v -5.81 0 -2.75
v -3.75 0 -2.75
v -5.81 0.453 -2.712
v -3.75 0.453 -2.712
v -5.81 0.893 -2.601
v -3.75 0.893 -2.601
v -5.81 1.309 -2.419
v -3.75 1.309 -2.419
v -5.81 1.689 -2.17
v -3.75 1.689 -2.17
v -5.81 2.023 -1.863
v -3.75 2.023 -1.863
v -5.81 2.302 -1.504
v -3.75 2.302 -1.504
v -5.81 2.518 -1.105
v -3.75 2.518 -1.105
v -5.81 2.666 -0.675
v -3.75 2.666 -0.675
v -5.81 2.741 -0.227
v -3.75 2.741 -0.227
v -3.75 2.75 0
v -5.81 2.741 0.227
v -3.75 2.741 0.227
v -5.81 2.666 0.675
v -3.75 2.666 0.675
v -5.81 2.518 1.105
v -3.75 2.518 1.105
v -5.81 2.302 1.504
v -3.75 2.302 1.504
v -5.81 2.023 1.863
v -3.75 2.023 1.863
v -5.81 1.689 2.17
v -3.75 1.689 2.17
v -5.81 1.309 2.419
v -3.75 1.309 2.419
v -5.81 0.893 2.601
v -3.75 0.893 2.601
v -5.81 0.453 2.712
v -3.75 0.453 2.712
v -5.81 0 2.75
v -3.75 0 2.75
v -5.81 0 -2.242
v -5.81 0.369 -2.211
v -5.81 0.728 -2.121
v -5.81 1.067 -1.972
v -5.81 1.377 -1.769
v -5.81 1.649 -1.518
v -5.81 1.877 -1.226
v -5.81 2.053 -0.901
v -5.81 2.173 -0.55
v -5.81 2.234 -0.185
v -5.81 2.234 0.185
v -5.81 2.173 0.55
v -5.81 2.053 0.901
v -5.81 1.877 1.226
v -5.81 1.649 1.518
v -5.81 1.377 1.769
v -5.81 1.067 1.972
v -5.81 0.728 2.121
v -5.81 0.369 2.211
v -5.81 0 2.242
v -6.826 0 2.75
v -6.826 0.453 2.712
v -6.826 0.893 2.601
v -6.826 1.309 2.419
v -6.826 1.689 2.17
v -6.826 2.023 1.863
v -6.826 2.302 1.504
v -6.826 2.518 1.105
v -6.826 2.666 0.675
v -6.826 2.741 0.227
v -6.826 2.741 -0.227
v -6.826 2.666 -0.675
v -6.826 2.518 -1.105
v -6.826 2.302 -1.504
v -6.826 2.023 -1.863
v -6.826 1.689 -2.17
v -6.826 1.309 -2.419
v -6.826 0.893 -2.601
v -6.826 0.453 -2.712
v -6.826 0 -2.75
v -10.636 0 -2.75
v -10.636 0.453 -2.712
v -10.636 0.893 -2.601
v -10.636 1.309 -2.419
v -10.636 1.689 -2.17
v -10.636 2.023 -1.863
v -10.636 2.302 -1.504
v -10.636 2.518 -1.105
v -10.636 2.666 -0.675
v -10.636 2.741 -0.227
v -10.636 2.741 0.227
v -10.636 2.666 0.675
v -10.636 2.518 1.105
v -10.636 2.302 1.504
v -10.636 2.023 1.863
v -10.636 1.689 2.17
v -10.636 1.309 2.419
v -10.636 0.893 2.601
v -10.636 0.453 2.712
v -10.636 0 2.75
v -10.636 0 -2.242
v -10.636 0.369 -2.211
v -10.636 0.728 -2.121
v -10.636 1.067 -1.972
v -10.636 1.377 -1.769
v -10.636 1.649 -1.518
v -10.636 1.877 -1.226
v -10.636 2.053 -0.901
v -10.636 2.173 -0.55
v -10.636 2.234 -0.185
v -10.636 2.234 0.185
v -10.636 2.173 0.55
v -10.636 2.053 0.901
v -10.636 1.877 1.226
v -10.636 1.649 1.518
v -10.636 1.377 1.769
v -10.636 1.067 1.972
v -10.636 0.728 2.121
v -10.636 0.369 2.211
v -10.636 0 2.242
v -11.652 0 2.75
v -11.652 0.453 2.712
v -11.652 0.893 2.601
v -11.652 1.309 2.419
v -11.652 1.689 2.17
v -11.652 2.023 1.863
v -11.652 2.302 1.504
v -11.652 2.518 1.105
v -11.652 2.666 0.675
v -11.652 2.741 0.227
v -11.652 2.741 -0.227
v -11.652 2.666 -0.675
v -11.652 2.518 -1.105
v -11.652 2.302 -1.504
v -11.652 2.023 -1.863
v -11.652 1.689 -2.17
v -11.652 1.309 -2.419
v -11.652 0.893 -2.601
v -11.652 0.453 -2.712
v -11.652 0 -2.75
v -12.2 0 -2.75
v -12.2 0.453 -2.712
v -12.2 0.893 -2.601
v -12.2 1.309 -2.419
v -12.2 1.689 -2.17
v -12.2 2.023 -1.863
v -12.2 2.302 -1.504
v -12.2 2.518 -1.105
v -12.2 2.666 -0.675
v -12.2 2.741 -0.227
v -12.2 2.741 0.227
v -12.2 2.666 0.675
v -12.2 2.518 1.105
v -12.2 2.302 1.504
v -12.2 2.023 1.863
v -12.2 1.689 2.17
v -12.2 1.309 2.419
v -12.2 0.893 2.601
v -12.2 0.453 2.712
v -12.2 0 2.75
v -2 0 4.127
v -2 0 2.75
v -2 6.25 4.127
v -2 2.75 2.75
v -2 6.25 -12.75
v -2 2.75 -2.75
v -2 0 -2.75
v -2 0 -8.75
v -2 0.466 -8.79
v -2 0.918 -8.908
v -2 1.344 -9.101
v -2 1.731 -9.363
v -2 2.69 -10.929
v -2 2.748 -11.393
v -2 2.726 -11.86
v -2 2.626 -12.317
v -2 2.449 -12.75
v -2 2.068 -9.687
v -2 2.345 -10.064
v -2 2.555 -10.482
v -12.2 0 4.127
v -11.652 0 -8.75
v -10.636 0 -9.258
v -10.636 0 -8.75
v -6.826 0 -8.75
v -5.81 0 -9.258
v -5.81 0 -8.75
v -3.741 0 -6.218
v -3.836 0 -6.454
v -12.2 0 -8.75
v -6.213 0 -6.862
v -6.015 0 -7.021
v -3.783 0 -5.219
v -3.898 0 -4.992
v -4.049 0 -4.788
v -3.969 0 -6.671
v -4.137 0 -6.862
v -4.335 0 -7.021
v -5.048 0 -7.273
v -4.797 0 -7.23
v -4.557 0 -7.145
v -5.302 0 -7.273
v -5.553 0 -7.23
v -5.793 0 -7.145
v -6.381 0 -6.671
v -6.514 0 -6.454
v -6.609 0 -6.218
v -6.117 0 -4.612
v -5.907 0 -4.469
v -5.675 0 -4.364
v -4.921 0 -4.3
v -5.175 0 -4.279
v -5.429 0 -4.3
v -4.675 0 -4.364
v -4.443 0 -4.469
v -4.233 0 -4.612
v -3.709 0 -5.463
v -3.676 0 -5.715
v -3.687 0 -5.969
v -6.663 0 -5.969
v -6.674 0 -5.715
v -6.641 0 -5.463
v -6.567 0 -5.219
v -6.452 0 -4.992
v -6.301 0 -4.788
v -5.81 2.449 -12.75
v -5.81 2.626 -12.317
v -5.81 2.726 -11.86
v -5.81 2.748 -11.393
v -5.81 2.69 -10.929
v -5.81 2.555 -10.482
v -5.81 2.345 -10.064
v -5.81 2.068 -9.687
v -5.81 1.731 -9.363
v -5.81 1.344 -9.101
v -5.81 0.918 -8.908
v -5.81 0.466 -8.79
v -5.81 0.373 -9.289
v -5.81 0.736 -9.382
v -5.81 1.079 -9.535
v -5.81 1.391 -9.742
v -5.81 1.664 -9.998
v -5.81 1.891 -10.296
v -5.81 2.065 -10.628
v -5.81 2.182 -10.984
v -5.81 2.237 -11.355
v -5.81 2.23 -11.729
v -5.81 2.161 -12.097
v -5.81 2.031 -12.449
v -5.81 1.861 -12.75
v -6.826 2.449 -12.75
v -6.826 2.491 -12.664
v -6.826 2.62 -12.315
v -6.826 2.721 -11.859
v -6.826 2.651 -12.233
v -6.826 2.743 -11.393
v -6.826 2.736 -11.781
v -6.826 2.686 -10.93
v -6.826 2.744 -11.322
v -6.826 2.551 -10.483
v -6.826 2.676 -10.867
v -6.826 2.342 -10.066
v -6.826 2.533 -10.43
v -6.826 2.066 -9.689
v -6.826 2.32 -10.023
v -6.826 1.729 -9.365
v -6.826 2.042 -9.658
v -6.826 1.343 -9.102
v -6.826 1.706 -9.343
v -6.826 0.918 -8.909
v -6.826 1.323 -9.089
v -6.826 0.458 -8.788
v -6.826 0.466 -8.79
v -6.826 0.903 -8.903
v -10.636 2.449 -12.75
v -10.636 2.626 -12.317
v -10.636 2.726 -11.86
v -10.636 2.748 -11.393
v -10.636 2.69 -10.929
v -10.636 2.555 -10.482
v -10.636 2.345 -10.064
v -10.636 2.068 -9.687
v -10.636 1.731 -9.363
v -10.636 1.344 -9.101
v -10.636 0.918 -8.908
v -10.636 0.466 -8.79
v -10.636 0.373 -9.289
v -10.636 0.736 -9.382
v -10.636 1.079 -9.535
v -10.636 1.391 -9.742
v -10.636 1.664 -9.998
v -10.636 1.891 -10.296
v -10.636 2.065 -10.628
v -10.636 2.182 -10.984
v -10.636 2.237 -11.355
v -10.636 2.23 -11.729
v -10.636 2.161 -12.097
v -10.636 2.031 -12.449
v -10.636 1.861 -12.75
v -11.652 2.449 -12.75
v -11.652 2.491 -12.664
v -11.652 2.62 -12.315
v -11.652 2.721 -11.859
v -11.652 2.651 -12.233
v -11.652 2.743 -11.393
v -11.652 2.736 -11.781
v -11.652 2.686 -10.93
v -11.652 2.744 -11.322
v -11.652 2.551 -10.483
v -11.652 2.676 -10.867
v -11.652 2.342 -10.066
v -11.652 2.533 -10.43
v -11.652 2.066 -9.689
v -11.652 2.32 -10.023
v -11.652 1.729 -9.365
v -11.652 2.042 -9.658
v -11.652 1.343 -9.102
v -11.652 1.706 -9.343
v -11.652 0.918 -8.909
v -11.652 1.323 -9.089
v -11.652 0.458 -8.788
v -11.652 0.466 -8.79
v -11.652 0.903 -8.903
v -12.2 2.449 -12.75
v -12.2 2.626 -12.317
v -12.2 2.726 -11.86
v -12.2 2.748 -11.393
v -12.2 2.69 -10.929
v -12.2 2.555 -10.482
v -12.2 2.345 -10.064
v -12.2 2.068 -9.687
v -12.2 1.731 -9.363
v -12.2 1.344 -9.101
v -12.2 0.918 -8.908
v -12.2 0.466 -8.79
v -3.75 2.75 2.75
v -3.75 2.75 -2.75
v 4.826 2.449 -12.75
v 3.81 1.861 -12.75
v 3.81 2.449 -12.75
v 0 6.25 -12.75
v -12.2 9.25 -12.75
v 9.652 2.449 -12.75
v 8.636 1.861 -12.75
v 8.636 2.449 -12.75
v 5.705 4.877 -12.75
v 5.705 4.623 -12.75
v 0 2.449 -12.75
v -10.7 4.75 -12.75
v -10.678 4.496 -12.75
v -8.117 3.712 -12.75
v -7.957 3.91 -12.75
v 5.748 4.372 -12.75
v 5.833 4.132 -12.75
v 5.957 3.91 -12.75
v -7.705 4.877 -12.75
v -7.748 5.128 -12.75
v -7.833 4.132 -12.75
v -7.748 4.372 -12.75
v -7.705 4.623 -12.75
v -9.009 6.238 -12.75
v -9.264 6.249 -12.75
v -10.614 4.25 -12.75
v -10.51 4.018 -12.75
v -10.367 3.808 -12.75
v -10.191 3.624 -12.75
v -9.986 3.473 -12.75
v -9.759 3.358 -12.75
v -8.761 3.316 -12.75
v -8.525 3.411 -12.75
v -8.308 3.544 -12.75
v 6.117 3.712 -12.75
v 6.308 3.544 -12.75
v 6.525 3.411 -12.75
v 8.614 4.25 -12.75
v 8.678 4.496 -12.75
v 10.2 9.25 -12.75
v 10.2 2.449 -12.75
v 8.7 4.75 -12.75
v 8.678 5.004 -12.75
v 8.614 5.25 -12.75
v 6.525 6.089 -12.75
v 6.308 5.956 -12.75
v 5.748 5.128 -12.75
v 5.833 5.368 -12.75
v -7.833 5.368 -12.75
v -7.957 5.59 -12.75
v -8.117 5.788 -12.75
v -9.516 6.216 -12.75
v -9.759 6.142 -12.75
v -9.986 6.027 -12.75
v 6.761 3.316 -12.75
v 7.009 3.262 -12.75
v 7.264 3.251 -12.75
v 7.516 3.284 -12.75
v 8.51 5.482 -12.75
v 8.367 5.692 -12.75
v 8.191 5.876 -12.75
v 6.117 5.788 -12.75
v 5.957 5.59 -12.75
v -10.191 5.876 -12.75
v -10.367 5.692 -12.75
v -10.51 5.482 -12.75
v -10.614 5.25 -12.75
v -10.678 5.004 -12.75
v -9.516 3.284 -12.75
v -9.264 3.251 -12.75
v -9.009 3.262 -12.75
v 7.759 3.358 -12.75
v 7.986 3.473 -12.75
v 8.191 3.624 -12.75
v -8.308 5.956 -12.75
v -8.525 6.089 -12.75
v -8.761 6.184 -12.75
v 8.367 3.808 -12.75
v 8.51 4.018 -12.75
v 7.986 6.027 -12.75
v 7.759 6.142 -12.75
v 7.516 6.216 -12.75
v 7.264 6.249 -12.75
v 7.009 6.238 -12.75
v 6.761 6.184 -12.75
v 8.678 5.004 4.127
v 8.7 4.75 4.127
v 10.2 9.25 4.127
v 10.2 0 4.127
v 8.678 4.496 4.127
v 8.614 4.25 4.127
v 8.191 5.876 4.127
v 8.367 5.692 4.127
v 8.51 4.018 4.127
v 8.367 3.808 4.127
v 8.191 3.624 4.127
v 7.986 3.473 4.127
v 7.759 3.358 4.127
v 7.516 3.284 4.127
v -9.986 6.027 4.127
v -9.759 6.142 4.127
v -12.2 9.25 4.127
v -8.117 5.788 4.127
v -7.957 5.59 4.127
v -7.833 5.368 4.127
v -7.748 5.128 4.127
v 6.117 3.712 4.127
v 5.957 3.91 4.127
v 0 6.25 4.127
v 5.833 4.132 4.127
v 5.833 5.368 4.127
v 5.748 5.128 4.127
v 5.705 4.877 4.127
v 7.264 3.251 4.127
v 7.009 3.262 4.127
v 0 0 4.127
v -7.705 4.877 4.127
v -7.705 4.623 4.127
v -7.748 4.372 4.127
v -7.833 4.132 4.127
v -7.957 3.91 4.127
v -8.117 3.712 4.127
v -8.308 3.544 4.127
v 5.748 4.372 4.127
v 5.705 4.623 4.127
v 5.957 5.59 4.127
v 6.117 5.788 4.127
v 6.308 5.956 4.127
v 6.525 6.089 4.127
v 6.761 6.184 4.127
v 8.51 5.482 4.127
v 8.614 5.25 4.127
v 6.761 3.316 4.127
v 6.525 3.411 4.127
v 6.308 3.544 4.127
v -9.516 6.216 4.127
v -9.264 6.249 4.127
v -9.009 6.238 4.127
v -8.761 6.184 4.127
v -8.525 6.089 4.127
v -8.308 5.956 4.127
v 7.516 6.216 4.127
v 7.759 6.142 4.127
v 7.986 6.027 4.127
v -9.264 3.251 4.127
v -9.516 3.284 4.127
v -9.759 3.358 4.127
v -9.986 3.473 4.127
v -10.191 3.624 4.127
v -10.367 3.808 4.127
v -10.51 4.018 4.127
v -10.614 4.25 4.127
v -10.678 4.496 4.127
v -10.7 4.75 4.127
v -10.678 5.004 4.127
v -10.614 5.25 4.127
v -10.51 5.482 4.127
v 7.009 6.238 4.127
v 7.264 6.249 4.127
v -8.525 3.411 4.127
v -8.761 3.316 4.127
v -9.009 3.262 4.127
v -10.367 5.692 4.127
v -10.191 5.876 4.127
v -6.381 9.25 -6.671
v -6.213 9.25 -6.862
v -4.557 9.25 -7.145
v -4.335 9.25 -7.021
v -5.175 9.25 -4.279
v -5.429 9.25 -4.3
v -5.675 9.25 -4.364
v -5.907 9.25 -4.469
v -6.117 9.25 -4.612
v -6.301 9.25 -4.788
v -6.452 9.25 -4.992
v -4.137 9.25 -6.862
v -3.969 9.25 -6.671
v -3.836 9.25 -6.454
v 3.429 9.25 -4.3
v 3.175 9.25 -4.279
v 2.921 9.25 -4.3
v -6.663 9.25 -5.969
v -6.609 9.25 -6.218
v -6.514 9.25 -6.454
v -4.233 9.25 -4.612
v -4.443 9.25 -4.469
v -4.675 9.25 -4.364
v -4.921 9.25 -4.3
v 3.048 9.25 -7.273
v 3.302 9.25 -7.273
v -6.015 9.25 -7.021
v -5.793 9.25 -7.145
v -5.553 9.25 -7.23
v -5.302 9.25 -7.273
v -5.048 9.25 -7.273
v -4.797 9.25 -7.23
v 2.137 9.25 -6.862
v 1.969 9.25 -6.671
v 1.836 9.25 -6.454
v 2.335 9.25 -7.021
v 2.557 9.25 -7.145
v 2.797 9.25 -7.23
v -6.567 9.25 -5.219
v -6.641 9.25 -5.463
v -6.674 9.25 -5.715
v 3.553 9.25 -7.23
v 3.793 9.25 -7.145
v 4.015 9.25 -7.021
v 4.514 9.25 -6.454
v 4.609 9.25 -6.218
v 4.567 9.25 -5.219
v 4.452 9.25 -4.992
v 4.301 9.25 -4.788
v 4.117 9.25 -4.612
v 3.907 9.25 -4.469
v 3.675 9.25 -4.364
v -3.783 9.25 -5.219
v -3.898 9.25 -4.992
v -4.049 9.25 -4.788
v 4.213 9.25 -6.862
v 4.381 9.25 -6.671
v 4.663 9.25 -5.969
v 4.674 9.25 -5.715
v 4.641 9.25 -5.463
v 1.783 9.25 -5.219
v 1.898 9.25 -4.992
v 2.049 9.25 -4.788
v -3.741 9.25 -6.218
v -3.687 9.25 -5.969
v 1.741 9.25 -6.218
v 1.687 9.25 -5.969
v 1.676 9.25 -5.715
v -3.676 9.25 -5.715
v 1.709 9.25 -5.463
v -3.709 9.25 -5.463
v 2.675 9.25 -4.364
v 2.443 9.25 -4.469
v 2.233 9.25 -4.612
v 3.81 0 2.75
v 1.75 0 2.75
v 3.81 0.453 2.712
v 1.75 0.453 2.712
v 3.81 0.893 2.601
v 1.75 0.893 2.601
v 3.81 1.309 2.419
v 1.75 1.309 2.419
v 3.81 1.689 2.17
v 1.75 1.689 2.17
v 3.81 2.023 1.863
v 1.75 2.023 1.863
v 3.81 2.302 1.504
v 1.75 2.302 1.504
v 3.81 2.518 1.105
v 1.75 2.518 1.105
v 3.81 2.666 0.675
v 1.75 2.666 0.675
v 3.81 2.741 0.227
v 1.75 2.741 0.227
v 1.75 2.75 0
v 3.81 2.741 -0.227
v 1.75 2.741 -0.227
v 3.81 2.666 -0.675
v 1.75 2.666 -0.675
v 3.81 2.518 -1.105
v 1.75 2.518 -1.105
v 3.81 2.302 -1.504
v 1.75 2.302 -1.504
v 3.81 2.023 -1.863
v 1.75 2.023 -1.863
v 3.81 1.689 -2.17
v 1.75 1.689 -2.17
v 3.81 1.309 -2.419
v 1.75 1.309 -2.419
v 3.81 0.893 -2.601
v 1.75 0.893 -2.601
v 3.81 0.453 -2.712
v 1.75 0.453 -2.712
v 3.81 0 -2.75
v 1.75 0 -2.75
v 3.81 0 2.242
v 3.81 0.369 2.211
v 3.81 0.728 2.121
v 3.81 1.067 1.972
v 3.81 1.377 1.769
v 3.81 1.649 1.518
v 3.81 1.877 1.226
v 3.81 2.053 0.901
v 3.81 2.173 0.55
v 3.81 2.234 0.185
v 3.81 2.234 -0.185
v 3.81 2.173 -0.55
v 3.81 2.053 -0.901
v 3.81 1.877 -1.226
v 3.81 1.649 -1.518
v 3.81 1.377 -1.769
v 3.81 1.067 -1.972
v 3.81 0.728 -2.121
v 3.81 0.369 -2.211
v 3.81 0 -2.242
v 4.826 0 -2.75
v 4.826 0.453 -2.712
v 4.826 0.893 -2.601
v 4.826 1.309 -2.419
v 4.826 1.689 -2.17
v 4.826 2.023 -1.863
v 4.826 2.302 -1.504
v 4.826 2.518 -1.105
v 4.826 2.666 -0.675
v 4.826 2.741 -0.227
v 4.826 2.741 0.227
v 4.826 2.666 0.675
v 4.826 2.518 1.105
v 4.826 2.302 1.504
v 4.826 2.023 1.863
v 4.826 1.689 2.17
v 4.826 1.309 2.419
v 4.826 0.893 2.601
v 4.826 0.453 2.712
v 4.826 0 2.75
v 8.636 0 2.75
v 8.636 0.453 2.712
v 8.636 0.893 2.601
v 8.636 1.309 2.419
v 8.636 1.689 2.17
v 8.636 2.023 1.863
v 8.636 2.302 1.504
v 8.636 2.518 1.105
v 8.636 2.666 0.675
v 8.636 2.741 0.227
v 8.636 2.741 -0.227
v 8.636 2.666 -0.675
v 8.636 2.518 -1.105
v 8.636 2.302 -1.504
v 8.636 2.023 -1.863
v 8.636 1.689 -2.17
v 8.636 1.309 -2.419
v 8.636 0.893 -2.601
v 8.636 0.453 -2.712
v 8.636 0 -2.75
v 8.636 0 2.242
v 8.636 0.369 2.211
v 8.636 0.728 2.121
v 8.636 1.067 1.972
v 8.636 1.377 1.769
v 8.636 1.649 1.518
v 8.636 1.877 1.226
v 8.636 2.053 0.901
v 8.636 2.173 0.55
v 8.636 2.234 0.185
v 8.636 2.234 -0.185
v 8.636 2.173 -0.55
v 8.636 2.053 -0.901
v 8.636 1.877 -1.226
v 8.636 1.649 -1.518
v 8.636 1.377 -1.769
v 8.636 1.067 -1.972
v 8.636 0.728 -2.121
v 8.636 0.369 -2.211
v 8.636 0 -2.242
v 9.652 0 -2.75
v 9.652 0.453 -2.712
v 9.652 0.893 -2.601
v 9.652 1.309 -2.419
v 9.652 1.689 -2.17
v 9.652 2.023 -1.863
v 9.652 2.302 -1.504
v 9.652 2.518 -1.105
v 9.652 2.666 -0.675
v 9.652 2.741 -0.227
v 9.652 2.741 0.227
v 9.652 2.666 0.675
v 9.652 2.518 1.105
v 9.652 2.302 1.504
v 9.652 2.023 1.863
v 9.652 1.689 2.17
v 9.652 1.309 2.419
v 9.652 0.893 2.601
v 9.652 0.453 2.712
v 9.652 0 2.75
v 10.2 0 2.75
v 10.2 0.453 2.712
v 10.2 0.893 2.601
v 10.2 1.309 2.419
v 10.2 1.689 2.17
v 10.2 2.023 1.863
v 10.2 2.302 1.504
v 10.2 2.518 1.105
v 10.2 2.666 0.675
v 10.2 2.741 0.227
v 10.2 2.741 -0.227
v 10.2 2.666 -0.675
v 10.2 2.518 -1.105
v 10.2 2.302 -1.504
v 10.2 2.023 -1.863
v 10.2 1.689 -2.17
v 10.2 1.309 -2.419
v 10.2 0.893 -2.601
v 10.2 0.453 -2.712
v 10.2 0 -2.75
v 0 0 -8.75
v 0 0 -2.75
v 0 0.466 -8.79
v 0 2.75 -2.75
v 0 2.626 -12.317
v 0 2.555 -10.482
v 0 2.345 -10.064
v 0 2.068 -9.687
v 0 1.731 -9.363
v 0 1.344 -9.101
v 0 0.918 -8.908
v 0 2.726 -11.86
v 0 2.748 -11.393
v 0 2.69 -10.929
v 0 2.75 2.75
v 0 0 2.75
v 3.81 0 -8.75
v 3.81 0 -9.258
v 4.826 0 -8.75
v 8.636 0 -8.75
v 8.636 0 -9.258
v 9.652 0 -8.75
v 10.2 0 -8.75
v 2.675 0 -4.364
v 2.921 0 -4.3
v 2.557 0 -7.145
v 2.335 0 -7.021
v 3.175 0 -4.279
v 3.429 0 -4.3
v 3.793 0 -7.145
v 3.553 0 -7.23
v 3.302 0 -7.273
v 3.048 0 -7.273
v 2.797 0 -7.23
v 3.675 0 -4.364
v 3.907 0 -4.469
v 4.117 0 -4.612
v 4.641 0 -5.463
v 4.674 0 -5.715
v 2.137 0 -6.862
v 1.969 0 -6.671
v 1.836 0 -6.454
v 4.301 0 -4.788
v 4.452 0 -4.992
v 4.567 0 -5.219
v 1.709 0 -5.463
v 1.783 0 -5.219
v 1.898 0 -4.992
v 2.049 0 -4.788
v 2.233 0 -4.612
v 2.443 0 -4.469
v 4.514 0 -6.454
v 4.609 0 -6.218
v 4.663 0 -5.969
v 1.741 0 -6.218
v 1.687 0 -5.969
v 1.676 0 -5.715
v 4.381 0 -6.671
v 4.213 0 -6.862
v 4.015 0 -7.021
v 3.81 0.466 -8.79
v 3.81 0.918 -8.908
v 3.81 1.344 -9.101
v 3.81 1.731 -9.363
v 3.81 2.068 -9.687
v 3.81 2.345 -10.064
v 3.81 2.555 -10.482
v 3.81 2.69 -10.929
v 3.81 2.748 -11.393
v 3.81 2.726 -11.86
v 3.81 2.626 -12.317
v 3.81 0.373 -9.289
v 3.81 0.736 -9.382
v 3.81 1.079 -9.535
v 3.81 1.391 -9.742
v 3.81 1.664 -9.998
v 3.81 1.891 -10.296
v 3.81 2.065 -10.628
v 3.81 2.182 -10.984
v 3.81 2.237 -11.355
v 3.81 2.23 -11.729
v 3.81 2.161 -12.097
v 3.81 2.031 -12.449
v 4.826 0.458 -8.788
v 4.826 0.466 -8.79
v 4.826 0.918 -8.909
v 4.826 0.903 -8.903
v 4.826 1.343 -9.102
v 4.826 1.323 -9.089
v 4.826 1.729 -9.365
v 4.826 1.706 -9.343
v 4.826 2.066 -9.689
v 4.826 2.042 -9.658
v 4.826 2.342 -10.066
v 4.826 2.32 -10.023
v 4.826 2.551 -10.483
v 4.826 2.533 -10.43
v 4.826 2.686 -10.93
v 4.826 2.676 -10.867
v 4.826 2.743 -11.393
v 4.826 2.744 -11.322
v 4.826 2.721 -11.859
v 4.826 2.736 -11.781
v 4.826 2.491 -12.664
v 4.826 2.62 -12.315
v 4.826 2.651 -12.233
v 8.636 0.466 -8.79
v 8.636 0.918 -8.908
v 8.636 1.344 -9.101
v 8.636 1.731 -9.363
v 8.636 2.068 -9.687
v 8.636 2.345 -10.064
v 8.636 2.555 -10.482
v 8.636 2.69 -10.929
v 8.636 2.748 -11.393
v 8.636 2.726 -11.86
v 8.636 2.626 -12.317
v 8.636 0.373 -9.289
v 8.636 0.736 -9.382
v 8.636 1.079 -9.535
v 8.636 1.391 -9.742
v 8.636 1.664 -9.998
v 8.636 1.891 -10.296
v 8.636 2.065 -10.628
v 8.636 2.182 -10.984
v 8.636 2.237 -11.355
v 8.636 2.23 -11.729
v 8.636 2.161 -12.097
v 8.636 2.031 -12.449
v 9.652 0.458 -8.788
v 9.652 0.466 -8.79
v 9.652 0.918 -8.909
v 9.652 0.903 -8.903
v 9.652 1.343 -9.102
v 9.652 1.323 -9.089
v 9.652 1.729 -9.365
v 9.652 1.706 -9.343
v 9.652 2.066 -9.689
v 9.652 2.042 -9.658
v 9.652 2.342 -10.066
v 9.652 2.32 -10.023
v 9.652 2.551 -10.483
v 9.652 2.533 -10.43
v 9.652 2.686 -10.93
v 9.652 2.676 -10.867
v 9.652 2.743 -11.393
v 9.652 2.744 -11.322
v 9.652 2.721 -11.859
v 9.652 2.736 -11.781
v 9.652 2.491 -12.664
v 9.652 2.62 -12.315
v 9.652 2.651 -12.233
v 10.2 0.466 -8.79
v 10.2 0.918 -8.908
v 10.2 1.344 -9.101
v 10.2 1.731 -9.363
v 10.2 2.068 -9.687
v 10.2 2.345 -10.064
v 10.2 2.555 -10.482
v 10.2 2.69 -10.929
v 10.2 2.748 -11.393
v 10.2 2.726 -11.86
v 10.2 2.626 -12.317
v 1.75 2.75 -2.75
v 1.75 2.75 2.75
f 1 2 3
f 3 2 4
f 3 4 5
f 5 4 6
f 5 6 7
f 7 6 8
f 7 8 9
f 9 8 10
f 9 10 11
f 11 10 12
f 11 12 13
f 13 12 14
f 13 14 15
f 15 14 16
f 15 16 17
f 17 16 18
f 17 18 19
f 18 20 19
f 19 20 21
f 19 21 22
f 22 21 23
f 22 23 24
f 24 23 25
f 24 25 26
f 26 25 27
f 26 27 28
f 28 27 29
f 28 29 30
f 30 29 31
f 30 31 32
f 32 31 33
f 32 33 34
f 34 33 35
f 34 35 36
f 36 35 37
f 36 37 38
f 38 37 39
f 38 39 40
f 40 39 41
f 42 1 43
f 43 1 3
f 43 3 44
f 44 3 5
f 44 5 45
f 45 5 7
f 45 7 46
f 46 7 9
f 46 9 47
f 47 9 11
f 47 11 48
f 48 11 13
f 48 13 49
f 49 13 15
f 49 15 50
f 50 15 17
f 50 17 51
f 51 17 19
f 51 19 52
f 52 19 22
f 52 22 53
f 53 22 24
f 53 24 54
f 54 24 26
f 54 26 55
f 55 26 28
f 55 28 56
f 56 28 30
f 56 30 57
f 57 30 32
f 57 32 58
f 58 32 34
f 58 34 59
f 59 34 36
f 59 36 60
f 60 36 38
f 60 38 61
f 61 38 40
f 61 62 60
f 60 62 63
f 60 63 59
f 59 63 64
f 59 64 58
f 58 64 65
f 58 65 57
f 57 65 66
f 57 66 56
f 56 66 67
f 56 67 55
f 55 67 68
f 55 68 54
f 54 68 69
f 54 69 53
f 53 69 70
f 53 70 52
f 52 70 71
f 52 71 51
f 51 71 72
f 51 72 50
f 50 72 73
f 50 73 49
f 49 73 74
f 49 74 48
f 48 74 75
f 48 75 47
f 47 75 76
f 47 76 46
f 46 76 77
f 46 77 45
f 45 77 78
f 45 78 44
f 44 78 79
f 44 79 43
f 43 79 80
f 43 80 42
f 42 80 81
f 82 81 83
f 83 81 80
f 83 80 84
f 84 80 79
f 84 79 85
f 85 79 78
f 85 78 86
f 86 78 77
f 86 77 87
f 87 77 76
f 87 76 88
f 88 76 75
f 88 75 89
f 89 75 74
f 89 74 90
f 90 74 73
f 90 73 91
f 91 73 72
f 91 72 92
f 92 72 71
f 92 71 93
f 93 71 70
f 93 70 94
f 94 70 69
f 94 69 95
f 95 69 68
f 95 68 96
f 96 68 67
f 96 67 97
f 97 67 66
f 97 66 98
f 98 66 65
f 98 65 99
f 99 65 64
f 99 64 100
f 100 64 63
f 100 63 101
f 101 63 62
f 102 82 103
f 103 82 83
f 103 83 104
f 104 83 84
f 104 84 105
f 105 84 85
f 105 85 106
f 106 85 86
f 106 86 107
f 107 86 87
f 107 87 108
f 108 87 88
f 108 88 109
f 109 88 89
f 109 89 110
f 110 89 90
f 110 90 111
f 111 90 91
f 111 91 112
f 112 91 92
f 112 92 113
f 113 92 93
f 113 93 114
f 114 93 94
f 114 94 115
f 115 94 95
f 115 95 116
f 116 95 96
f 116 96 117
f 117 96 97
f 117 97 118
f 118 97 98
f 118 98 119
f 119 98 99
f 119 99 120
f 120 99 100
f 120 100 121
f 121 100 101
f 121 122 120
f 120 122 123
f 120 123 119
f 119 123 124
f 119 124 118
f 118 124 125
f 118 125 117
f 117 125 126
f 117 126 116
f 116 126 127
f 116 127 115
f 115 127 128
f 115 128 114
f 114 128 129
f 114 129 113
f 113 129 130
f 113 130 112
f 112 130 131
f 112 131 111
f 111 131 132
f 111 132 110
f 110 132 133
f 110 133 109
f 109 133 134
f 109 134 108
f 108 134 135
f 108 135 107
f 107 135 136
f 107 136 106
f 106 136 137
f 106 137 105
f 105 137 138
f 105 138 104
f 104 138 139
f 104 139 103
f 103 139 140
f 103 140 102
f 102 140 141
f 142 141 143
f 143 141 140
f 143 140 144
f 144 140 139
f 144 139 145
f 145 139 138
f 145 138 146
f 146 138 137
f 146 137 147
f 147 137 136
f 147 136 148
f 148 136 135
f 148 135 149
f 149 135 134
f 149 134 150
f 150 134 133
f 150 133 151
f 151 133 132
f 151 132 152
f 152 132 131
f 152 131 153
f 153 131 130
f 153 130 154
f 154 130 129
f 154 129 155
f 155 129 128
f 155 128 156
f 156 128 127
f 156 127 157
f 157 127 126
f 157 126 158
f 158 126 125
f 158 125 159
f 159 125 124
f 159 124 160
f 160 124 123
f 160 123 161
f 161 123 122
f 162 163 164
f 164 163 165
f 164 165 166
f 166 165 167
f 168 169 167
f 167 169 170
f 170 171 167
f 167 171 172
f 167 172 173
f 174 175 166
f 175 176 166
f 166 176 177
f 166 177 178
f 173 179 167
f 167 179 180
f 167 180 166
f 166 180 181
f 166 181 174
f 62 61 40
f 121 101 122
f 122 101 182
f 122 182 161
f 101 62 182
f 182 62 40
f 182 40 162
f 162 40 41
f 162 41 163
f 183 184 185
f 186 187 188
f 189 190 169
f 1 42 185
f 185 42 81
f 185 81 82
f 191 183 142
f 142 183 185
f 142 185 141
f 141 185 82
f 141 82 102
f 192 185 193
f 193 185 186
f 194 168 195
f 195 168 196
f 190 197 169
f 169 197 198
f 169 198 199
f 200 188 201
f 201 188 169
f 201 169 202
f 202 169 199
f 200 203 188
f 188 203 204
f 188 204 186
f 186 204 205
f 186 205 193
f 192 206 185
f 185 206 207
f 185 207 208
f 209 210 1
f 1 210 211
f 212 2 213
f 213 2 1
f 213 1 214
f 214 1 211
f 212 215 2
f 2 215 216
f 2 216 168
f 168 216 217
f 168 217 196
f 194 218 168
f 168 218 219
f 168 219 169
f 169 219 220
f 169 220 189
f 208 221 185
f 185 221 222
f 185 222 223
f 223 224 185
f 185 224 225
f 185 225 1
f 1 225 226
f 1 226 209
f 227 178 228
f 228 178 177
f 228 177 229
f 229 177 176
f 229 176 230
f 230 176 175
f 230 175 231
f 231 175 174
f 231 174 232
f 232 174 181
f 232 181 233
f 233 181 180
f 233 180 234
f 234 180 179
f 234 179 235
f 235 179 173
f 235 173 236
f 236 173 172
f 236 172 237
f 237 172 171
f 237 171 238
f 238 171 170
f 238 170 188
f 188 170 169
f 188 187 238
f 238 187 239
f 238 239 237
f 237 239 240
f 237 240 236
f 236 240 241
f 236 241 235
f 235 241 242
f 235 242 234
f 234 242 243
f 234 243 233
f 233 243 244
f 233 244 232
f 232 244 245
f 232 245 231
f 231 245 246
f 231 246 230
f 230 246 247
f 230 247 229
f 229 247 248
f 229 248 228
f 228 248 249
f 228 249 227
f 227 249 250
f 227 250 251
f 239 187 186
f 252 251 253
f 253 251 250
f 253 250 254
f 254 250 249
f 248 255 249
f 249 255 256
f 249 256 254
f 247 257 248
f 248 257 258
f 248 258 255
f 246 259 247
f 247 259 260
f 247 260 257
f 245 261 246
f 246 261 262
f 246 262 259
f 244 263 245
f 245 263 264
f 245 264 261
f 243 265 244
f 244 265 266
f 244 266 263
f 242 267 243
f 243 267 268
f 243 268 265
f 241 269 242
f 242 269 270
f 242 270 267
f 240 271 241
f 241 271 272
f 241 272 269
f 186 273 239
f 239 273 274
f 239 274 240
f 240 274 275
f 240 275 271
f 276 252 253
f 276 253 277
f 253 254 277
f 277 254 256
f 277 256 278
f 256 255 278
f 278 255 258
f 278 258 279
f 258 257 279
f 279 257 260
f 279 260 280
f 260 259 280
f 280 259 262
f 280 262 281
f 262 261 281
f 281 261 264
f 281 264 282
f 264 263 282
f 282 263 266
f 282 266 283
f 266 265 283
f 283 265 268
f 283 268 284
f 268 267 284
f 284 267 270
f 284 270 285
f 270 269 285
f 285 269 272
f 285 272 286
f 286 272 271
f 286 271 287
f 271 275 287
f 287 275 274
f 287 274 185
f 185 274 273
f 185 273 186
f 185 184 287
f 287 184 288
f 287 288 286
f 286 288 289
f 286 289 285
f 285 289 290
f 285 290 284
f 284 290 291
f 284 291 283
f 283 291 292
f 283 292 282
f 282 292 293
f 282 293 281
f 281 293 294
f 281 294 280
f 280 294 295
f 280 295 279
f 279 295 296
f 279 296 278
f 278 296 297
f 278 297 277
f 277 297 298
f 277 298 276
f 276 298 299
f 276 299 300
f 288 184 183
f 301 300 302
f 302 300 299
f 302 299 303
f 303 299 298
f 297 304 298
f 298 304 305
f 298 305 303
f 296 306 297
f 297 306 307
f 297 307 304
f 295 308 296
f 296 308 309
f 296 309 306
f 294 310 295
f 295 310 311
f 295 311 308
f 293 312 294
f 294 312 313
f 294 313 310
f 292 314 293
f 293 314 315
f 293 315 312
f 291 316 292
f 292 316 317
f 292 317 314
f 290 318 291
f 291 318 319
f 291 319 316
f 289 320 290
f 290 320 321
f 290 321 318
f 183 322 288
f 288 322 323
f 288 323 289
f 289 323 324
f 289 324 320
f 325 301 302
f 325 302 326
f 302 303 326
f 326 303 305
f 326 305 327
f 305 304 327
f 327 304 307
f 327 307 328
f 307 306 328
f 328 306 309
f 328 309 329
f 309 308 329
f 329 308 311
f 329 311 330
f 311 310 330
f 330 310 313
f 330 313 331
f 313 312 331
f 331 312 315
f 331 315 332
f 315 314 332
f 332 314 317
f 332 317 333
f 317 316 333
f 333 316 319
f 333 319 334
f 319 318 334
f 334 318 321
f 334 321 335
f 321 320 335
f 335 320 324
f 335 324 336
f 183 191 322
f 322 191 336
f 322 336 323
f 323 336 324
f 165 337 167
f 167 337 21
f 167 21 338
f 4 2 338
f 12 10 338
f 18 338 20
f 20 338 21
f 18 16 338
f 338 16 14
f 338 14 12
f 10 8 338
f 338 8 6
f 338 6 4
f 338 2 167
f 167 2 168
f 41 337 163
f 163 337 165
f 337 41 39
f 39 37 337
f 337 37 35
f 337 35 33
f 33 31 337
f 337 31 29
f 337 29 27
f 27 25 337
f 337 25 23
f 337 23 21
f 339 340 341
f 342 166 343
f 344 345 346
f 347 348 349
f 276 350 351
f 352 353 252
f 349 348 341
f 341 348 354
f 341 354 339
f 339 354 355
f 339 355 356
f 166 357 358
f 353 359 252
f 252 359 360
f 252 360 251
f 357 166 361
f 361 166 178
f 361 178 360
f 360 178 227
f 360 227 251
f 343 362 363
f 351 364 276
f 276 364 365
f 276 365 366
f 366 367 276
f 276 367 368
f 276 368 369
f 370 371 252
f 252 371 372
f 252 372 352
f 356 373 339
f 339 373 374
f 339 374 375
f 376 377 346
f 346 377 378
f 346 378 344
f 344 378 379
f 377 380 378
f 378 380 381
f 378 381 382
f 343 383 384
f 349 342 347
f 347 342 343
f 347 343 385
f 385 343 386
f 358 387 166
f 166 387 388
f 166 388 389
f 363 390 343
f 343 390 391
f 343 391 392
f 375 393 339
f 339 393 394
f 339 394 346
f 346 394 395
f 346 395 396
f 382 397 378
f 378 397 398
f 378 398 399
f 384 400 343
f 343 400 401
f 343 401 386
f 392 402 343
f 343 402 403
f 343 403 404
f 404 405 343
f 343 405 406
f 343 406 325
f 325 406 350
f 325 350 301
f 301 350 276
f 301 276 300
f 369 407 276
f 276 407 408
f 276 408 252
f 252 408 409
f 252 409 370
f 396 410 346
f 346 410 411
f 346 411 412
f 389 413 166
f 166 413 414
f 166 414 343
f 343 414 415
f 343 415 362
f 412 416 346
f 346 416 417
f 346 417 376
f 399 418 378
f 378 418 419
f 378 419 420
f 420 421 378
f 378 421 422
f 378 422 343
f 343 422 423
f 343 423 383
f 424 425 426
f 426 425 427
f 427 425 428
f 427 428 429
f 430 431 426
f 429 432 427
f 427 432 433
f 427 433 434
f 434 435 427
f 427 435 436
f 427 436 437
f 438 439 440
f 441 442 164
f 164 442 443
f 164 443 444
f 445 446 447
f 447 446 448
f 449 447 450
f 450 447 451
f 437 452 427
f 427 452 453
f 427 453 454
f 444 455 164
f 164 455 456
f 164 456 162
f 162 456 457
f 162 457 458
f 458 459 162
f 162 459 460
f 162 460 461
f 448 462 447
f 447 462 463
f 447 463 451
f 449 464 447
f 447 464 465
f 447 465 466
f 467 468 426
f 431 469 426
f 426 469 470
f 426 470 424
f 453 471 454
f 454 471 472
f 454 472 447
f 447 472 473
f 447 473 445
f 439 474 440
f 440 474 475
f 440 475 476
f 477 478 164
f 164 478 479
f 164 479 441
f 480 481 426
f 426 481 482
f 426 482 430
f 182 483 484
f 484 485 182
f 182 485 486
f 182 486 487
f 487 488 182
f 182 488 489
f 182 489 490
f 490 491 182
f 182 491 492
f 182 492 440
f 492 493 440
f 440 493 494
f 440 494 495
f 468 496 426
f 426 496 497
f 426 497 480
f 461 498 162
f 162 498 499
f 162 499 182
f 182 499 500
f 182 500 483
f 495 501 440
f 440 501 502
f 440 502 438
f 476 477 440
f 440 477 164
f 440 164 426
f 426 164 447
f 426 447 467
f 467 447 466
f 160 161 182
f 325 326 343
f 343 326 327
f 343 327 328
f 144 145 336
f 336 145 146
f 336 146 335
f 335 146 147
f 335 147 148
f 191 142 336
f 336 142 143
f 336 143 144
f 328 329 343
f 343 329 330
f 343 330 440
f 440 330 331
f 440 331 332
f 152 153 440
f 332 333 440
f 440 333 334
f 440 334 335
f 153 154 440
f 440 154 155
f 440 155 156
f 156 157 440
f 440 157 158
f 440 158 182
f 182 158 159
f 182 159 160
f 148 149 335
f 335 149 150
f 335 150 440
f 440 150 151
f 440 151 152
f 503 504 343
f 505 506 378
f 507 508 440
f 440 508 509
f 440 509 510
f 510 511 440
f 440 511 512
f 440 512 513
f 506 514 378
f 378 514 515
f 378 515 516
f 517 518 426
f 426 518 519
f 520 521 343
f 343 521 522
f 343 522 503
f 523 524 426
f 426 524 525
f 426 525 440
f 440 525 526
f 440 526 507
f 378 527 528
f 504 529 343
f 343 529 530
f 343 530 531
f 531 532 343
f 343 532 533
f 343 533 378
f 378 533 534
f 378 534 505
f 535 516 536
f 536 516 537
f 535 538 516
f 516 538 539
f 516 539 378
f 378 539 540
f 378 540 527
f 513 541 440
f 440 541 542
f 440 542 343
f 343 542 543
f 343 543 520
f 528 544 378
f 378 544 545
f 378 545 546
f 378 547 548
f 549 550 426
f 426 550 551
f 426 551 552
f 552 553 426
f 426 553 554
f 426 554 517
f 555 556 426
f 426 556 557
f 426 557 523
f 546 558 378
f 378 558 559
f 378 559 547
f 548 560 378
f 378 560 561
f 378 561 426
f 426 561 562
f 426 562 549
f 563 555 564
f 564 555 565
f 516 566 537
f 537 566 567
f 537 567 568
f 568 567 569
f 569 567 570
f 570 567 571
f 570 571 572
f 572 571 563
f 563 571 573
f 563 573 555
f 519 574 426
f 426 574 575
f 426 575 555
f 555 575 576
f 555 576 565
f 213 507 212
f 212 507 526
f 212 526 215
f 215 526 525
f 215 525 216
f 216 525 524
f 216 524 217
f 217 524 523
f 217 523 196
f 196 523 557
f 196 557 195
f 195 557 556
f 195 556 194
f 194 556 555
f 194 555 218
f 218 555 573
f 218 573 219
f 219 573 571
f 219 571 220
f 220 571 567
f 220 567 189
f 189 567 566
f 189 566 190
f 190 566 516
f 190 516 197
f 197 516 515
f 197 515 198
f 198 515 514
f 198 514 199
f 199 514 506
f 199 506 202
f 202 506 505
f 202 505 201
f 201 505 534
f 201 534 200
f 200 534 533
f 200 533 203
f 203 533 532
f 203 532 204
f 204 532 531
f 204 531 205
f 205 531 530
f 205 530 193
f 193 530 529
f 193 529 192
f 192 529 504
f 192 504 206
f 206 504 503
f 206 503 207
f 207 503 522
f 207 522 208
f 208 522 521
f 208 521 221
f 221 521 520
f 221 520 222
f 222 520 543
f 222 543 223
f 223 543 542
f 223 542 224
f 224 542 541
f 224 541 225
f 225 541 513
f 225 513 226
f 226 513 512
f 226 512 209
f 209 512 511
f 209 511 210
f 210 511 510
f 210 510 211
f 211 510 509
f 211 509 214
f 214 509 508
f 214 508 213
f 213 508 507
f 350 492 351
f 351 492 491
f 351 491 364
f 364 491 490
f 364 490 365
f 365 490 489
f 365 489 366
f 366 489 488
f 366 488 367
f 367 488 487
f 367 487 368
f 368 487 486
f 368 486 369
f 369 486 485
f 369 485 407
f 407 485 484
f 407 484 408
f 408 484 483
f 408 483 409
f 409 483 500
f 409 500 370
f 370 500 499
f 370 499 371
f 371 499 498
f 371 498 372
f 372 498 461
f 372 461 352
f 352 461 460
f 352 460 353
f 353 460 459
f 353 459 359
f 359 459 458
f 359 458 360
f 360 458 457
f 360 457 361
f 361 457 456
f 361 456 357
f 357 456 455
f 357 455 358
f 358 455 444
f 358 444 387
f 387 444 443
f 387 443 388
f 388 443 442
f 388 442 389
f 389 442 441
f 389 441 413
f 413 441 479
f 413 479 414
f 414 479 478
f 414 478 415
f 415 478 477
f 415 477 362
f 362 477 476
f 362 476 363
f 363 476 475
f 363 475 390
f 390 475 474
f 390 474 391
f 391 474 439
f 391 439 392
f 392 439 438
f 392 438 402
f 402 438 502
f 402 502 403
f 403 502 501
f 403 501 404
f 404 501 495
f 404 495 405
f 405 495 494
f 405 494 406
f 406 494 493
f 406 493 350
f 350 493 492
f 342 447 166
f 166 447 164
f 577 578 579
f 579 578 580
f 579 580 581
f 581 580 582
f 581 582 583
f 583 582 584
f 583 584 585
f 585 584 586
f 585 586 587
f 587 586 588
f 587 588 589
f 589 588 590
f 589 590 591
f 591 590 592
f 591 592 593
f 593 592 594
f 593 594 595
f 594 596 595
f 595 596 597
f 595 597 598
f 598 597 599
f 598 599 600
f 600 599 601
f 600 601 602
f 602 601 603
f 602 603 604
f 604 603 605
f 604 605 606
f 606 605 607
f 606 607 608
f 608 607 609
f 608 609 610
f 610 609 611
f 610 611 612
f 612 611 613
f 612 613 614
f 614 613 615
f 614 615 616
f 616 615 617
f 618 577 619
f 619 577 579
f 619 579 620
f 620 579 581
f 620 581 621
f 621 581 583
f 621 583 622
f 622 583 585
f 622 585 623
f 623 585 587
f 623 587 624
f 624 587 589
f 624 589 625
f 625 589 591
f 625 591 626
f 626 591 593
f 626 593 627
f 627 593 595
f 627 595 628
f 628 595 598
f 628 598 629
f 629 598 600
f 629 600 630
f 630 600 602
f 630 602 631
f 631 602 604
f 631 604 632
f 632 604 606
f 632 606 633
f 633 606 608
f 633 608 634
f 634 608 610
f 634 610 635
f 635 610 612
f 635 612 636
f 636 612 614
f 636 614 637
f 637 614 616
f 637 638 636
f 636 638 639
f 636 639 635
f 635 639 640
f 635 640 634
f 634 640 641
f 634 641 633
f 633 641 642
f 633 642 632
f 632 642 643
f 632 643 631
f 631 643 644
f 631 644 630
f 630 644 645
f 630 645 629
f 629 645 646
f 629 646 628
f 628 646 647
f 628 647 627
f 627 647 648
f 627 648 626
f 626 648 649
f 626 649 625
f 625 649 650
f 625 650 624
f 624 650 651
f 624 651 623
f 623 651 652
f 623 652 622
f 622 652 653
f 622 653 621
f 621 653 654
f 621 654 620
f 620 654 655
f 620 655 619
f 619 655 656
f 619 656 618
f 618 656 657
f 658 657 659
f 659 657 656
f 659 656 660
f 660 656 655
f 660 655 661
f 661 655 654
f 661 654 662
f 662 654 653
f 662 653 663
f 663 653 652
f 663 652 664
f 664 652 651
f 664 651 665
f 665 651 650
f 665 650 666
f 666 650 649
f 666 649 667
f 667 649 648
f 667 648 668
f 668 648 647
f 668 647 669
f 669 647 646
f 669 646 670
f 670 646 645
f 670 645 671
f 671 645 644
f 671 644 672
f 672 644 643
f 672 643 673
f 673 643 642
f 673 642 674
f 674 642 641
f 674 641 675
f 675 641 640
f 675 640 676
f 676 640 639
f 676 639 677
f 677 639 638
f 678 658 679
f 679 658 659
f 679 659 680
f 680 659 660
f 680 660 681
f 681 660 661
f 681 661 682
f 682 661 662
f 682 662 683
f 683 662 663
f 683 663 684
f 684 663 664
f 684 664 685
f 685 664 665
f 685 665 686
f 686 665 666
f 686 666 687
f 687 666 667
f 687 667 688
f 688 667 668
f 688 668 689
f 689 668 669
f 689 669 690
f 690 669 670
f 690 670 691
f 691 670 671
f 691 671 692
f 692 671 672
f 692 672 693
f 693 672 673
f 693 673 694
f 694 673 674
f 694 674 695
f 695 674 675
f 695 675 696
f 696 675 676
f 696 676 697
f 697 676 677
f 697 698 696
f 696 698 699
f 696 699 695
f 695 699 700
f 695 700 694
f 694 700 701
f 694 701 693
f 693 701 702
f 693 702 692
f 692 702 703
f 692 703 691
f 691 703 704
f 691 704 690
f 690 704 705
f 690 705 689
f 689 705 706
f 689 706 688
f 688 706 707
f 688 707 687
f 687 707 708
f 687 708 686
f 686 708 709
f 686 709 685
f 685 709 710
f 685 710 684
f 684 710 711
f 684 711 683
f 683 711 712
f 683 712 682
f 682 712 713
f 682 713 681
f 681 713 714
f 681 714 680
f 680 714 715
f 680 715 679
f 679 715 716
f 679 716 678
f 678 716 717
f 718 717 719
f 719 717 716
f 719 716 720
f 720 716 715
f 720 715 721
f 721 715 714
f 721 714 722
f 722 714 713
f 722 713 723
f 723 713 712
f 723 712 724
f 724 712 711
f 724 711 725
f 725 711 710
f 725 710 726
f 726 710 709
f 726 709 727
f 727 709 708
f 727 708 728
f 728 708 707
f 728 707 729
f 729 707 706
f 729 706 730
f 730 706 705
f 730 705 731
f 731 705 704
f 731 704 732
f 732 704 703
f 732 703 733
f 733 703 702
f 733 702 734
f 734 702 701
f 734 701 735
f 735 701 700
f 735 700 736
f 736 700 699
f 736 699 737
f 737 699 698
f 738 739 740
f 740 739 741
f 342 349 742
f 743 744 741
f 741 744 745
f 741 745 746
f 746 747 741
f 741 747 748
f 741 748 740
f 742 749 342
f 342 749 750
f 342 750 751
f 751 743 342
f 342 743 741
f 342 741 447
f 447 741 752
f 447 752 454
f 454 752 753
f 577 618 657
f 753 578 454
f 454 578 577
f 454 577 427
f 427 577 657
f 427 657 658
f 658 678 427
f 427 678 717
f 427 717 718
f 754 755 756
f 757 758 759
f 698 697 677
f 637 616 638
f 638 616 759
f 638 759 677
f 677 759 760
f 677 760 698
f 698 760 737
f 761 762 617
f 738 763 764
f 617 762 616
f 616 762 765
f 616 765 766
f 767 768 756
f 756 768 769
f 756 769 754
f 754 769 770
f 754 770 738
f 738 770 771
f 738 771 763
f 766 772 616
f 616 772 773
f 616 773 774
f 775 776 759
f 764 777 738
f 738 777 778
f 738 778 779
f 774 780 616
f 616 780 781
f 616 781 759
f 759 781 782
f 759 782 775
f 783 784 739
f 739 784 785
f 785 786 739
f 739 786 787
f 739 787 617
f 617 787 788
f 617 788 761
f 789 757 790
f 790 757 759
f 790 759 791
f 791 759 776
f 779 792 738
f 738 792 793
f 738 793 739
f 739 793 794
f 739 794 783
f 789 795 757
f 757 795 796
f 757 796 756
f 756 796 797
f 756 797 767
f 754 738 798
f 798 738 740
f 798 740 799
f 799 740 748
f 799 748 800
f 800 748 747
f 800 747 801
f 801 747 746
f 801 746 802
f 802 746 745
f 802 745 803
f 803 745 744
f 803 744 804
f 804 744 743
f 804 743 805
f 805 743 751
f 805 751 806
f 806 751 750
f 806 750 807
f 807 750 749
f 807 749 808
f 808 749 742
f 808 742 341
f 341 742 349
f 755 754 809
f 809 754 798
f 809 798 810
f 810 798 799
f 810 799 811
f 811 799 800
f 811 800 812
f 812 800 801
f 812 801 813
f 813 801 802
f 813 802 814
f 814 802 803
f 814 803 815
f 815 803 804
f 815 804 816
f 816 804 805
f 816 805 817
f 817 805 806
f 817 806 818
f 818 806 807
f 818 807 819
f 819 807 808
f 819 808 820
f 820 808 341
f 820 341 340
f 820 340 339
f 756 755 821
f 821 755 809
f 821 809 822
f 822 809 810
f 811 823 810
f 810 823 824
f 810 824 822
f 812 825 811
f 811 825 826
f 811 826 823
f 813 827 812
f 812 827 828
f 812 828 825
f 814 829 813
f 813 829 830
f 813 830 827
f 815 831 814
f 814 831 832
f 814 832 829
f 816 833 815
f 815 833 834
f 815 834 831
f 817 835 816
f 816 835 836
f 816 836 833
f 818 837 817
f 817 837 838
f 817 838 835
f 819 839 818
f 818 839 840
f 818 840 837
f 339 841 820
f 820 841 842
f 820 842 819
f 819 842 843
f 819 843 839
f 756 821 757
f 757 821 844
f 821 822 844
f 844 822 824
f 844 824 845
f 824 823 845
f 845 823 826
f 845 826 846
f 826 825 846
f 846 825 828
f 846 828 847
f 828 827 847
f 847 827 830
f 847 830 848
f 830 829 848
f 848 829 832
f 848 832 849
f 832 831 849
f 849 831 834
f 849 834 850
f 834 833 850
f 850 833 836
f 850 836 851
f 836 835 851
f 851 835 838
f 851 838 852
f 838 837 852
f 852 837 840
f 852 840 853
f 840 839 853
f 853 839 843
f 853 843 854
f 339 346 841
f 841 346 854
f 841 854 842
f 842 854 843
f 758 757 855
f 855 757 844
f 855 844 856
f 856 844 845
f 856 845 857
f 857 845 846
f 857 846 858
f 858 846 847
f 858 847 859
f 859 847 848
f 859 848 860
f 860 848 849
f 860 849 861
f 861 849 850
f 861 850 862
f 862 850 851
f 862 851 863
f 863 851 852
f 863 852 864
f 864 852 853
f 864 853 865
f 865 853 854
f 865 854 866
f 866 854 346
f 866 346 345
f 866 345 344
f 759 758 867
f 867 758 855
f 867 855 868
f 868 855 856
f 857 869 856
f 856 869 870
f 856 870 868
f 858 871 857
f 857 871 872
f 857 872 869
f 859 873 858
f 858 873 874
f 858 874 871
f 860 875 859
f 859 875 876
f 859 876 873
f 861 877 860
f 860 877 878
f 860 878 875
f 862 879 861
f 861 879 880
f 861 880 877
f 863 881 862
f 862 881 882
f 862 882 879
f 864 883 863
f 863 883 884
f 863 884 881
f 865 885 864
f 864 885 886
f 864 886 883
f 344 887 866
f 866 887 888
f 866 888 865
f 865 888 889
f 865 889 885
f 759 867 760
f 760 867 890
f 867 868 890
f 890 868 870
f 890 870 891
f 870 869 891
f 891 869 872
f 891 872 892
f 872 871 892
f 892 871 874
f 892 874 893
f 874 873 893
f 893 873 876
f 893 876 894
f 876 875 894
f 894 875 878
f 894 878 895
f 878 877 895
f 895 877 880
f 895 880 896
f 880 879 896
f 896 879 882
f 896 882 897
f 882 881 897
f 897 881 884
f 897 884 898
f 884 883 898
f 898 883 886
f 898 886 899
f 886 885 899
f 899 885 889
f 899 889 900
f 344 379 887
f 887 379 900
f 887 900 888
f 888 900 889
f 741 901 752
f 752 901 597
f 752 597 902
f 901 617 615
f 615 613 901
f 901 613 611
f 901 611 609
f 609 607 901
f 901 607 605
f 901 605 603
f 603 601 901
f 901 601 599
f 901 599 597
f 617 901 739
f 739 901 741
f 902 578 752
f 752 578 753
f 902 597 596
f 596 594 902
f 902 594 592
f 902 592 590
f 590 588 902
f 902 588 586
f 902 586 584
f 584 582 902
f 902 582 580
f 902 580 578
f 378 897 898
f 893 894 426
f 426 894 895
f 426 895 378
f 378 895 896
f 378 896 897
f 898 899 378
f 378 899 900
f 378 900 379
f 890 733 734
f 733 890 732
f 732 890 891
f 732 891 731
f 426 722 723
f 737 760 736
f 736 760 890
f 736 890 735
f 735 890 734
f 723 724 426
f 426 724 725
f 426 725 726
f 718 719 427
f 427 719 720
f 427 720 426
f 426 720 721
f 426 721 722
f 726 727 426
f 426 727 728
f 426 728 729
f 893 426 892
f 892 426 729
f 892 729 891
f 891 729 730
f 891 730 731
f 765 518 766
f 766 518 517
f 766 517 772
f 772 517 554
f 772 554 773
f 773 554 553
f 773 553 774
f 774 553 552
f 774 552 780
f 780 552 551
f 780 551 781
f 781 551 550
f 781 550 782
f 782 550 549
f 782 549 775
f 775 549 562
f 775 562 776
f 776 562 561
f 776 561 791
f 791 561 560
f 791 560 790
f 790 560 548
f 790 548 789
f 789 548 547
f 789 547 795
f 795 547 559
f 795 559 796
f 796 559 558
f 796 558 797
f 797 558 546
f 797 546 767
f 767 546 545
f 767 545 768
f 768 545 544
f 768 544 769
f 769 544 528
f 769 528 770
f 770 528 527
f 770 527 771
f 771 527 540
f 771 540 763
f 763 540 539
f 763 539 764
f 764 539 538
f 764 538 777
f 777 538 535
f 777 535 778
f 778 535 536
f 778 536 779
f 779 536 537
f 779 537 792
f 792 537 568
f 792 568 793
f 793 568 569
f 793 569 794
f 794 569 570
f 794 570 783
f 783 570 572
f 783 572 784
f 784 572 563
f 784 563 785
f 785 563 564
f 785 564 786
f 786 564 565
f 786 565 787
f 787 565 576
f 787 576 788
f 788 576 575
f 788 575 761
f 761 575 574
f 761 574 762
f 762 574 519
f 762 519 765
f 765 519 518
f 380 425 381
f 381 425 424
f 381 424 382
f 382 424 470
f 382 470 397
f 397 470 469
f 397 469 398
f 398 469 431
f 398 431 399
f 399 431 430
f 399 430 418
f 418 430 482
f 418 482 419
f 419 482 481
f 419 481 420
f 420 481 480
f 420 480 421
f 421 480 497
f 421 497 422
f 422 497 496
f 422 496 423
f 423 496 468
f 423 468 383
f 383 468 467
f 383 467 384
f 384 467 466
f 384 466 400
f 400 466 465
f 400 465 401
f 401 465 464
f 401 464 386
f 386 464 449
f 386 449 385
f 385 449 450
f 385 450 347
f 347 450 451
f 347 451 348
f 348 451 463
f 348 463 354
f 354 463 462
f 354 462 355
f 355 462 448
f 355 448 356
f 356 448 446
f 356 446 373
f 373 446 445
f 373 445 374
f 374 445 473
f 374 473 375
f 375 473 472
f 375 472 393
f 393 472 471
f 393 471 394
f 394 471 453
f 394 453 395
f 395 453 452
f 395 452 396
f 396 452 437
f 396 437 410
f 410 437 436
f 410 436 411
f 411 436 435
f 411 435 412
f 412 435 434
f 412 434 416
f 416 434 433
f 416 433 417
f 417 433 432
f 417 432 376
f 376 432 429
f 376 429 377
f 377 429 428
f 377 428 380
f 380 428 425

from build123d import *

# Parameters (mm, degrees)
REVOLVE1_ANGLE           = 180
BOSS_EXTRUDE1_DEPTH      = 9.25
BOSS_EXTRUDE1_DEPTH_BACK = 9.25
BOSS_EXTRUDE2_START      = 3.5
BOSS_EXTRUDE2_DEPTH      = 5.75
BOSS_EXTRUDE3_START      = -3.5
BOSS_EXTRUDE3_DEPTH      = 5.75
SKETCH14_W               = 2.5
SKETCH14_H               = 5
CUT_EXTRUDE10_DEPTH      = 17.487950145
SKETCH13_W               = 5.5
SKETCH13_H               = 2.75
CUT_EXTRUDE9_DEPTH       = 1.75
SKETCH15_W               = 12.7
SKETCH15_H               = 8
CUT_EXTRUDE11_DEPTH      = 25.836515456
SKETCH16_W               = 5.122625222
SKETCH16_H               = 5
CUT_EXTRUDE12_DEPTH      = 19.677593528
SKETCH22_W               = 2.5
SKETCH22_H               = 5
CUT_EXTRUDE17_DEPTH      = 22.705662381
SKETCH17_W               = 10.2
SKETCH17_H               = 16.877374778
BOSS_EXTRUDE4_DEPTH      = 4.25
SKETCH18_R               = 1.5
CUT_EXTRUDE13_DEPTH      = 28.275588567
SKETCH19_R               = 1.5
CUT_EXTRUDE14_DEPTH      = 27.141829157
SKETCH20_R               = 1.5
CUT_EXTRUDE16_DEPTH      = 24.804137104
SKETCH23_W               = 16.877374778
SKETCH23_H               = 3
BOSS_EXTRUDE5_DEPTH      = 1


with BuildPart() as part:
    # Sketch6 → Revolve1 (revolve)
    with BuildSketch(Plane(origin=(0, 0, 0), x_dir=(1, 0, 0), z_dir=(0, 1, 0))):
        Polygon((0, 5), (0, 2.75), (3.81, 2.75), (3.81, 2.242), (4.826, 2.75), (8.636, 2.75), (8.636, 2.242), (9.652, 2.75), (12.7, 2.75), (12.7, 5), align=None)
    revolve(axis=Axis((0, 0, 0), (1, 0, 0)), revolution_arc=REVOLVE1_ANGLE)

    # Sketch9 → Boss-Extrude1 (add, two sides: drawn at the far end of the back side and taken through both)
    with BuildSketch(Plane.XY.offset(-BOSS_EXTRUDE1_DEPTH_BACK)):
        Polygon((0, 5), (0, 3.25), (12.7, 2.75), (12.7, 5), align=None)
    extrude(amount=BOSS_EXTRUDE1_DEPTH + BOSS_EXTRUDE1_DEPTH_BACK)

    # Sketch9<3> → Boss-Extrude2 (add)
    with BuildSketch(Plane.XY.offset(BOSS_EXTRUDE2_START)):
        Polygon((0, 3.25), (0, 0), (12.7, 0), (12.7, 2.75), align=None)
    extrude(amount=BOSS_EXTRUDE2_DEPTH)

    # Sketch9<4> → Boss-Extrude3 (add)
    with BuildSketch(Plane.XY.offset(BOSS_EXTRUDE3_START)):
        Polygon((0, 3.25), (0, 0), (12.7, 0), (12.7, 2.75), align=None)
    extrude(amount=-BOSS_EXTRUDE3_DEPTH)

    # Sketch14 → Cut-Extrude10 (cut, through all)
    with BuildSketch(Plane.ZY):
        with Locations((-8, 2.5)):
            Rectangle(SKETCH14_W, SKETCH14_H)
    extrude(amount=-CUT_EXTRUDE10_DEPTH, mode=Mode.SUBTRACT)

    # Mirror4: part across plane


with BuildPart() as part_1:
    add(part.part)
    add(part.part.mirror(Plane.XY.offset(-5.75)))

    # Sketch13 → Cut-Extrude9 (cut)
    with BuildSketch(Plane.ZY):
        with Locations((0, 1.375)):
            Rectangle(SKETCH13_W, SKETCH13_H)
    extrude(amount=-CUT_EXTRUDE9_DEPTH, mode=Mode.SUBTRACT)

    # Sketch15 → Cut-Extrude11 (cut, through all)
    with BuildSketch(Plane(origin=(0, 5, 0), x_dir=(1, 0, 0), z_dir=(0, 1, 0))):
        with Locations((6.35, 16.75)):
            Rectangle(SKETCH15_W, SKETCH15_H)
    extrude(amount=-CUT_EXTRUDE11_DEPTH, mode=Mode.SUBTRACT)

    # Sketch16 → Cut-Extrude12 (cut, through all)
    with BuildSketch(Plane.ZY):
        with Locations((6.688687389, 2.5)):
            Rectangle(SKETCH16_W, SKETCH16_H)
    extrude(amount=-CUT_EXTRUDE12_DEPTH, mode=Mode.SUBTRACT)

    # Sketch22 → Cut-Extrude17 (cut, through all)
    with BuildSketch(Plane.XY.offset(4.127374778)):
        with Locations((11.45, 2.5)):
            Rectangle(SKETCH22_W, SKETCH22_H)
    extrude(amount=-CUT_EXTRUDE17_DEPTH, mode=Mode.SUBTRACT)


with BuildPart() as body_2:
    # Mirror8: mirrored copy
    add(part_1.part.mirror(Plane.XY.offset(5.397374778)))

    # Sketch19 → Cut-Extrude14 (cut, through all)
    with BuildSketch(Plane(origin=(0, 5, 0), x_dir=(1, 0, 0), z_dir=(0, 1, 0))):
        with Locations((3.175, -16.573374778)):
            Circle(SKETCH19_R)
    extrude(amount=-CUT_EXTRUDE14_DEPTH, mode=Mode.SUBTRACT)


with BuildPart() as part_2:
    add(part_1.part)

    # Sketch17 → Boss-Extrude4 (add)
    with BuildSketch(Plane(origin=(0, 5, 0), x_dir=(1, 0, 0), z_dir=(0, 1, 0))):
        with Locations((5.1, 4.311312611)):
            Rectangle(SKETCH17_W, SKETCH17_H)
    extrude(amount=BOSS_EXTRUDE4_DEPTH)

    # Sketch18 → Cut-Extrude13 (cut, through all)
    with BuildSketch(Plane(origin=(0, 9.25, 0), x_dir=(1, 0, 0), z_dir=(0, 1, 0))):
        with Locations((3.175, 5.778625222)):
            Circle(SKETCH18_R)
    extrude(amount=-CUT_EXTRUDE13_DEPTH, mode=Mode.SUBTRACT)

    # Sketch20 → Cut-Extrude16 (cut, through all)
    with BuildSketch(Plane.XY.offset(4.127374778)):
        with Locations((7.2, 4.75)):
            Circle(SKETCH20_R)
    extrude(amount=-CUT_EXTRUDE16_DEPTH, mode=Mode.SUBTRACT)

    # Sketch23 → Boss-Extrude5 (add)
    with BuildSketch(Plane.ZY):
        with Locations((-4.311312611, 7.75)):
            Rectangle(SKETCH23_W, SKETCH23_H)
    extrude(amount=BOSS_EXTRUDE5_DEPTH)


with BuildPart() as body_3:
    # Mirror9: mirrored copy
    add(part_2.part.mirror(Plane.ZY.offset(1)))

    # Combine1: union part
    add(part_2.part)


solid = body_3.part
